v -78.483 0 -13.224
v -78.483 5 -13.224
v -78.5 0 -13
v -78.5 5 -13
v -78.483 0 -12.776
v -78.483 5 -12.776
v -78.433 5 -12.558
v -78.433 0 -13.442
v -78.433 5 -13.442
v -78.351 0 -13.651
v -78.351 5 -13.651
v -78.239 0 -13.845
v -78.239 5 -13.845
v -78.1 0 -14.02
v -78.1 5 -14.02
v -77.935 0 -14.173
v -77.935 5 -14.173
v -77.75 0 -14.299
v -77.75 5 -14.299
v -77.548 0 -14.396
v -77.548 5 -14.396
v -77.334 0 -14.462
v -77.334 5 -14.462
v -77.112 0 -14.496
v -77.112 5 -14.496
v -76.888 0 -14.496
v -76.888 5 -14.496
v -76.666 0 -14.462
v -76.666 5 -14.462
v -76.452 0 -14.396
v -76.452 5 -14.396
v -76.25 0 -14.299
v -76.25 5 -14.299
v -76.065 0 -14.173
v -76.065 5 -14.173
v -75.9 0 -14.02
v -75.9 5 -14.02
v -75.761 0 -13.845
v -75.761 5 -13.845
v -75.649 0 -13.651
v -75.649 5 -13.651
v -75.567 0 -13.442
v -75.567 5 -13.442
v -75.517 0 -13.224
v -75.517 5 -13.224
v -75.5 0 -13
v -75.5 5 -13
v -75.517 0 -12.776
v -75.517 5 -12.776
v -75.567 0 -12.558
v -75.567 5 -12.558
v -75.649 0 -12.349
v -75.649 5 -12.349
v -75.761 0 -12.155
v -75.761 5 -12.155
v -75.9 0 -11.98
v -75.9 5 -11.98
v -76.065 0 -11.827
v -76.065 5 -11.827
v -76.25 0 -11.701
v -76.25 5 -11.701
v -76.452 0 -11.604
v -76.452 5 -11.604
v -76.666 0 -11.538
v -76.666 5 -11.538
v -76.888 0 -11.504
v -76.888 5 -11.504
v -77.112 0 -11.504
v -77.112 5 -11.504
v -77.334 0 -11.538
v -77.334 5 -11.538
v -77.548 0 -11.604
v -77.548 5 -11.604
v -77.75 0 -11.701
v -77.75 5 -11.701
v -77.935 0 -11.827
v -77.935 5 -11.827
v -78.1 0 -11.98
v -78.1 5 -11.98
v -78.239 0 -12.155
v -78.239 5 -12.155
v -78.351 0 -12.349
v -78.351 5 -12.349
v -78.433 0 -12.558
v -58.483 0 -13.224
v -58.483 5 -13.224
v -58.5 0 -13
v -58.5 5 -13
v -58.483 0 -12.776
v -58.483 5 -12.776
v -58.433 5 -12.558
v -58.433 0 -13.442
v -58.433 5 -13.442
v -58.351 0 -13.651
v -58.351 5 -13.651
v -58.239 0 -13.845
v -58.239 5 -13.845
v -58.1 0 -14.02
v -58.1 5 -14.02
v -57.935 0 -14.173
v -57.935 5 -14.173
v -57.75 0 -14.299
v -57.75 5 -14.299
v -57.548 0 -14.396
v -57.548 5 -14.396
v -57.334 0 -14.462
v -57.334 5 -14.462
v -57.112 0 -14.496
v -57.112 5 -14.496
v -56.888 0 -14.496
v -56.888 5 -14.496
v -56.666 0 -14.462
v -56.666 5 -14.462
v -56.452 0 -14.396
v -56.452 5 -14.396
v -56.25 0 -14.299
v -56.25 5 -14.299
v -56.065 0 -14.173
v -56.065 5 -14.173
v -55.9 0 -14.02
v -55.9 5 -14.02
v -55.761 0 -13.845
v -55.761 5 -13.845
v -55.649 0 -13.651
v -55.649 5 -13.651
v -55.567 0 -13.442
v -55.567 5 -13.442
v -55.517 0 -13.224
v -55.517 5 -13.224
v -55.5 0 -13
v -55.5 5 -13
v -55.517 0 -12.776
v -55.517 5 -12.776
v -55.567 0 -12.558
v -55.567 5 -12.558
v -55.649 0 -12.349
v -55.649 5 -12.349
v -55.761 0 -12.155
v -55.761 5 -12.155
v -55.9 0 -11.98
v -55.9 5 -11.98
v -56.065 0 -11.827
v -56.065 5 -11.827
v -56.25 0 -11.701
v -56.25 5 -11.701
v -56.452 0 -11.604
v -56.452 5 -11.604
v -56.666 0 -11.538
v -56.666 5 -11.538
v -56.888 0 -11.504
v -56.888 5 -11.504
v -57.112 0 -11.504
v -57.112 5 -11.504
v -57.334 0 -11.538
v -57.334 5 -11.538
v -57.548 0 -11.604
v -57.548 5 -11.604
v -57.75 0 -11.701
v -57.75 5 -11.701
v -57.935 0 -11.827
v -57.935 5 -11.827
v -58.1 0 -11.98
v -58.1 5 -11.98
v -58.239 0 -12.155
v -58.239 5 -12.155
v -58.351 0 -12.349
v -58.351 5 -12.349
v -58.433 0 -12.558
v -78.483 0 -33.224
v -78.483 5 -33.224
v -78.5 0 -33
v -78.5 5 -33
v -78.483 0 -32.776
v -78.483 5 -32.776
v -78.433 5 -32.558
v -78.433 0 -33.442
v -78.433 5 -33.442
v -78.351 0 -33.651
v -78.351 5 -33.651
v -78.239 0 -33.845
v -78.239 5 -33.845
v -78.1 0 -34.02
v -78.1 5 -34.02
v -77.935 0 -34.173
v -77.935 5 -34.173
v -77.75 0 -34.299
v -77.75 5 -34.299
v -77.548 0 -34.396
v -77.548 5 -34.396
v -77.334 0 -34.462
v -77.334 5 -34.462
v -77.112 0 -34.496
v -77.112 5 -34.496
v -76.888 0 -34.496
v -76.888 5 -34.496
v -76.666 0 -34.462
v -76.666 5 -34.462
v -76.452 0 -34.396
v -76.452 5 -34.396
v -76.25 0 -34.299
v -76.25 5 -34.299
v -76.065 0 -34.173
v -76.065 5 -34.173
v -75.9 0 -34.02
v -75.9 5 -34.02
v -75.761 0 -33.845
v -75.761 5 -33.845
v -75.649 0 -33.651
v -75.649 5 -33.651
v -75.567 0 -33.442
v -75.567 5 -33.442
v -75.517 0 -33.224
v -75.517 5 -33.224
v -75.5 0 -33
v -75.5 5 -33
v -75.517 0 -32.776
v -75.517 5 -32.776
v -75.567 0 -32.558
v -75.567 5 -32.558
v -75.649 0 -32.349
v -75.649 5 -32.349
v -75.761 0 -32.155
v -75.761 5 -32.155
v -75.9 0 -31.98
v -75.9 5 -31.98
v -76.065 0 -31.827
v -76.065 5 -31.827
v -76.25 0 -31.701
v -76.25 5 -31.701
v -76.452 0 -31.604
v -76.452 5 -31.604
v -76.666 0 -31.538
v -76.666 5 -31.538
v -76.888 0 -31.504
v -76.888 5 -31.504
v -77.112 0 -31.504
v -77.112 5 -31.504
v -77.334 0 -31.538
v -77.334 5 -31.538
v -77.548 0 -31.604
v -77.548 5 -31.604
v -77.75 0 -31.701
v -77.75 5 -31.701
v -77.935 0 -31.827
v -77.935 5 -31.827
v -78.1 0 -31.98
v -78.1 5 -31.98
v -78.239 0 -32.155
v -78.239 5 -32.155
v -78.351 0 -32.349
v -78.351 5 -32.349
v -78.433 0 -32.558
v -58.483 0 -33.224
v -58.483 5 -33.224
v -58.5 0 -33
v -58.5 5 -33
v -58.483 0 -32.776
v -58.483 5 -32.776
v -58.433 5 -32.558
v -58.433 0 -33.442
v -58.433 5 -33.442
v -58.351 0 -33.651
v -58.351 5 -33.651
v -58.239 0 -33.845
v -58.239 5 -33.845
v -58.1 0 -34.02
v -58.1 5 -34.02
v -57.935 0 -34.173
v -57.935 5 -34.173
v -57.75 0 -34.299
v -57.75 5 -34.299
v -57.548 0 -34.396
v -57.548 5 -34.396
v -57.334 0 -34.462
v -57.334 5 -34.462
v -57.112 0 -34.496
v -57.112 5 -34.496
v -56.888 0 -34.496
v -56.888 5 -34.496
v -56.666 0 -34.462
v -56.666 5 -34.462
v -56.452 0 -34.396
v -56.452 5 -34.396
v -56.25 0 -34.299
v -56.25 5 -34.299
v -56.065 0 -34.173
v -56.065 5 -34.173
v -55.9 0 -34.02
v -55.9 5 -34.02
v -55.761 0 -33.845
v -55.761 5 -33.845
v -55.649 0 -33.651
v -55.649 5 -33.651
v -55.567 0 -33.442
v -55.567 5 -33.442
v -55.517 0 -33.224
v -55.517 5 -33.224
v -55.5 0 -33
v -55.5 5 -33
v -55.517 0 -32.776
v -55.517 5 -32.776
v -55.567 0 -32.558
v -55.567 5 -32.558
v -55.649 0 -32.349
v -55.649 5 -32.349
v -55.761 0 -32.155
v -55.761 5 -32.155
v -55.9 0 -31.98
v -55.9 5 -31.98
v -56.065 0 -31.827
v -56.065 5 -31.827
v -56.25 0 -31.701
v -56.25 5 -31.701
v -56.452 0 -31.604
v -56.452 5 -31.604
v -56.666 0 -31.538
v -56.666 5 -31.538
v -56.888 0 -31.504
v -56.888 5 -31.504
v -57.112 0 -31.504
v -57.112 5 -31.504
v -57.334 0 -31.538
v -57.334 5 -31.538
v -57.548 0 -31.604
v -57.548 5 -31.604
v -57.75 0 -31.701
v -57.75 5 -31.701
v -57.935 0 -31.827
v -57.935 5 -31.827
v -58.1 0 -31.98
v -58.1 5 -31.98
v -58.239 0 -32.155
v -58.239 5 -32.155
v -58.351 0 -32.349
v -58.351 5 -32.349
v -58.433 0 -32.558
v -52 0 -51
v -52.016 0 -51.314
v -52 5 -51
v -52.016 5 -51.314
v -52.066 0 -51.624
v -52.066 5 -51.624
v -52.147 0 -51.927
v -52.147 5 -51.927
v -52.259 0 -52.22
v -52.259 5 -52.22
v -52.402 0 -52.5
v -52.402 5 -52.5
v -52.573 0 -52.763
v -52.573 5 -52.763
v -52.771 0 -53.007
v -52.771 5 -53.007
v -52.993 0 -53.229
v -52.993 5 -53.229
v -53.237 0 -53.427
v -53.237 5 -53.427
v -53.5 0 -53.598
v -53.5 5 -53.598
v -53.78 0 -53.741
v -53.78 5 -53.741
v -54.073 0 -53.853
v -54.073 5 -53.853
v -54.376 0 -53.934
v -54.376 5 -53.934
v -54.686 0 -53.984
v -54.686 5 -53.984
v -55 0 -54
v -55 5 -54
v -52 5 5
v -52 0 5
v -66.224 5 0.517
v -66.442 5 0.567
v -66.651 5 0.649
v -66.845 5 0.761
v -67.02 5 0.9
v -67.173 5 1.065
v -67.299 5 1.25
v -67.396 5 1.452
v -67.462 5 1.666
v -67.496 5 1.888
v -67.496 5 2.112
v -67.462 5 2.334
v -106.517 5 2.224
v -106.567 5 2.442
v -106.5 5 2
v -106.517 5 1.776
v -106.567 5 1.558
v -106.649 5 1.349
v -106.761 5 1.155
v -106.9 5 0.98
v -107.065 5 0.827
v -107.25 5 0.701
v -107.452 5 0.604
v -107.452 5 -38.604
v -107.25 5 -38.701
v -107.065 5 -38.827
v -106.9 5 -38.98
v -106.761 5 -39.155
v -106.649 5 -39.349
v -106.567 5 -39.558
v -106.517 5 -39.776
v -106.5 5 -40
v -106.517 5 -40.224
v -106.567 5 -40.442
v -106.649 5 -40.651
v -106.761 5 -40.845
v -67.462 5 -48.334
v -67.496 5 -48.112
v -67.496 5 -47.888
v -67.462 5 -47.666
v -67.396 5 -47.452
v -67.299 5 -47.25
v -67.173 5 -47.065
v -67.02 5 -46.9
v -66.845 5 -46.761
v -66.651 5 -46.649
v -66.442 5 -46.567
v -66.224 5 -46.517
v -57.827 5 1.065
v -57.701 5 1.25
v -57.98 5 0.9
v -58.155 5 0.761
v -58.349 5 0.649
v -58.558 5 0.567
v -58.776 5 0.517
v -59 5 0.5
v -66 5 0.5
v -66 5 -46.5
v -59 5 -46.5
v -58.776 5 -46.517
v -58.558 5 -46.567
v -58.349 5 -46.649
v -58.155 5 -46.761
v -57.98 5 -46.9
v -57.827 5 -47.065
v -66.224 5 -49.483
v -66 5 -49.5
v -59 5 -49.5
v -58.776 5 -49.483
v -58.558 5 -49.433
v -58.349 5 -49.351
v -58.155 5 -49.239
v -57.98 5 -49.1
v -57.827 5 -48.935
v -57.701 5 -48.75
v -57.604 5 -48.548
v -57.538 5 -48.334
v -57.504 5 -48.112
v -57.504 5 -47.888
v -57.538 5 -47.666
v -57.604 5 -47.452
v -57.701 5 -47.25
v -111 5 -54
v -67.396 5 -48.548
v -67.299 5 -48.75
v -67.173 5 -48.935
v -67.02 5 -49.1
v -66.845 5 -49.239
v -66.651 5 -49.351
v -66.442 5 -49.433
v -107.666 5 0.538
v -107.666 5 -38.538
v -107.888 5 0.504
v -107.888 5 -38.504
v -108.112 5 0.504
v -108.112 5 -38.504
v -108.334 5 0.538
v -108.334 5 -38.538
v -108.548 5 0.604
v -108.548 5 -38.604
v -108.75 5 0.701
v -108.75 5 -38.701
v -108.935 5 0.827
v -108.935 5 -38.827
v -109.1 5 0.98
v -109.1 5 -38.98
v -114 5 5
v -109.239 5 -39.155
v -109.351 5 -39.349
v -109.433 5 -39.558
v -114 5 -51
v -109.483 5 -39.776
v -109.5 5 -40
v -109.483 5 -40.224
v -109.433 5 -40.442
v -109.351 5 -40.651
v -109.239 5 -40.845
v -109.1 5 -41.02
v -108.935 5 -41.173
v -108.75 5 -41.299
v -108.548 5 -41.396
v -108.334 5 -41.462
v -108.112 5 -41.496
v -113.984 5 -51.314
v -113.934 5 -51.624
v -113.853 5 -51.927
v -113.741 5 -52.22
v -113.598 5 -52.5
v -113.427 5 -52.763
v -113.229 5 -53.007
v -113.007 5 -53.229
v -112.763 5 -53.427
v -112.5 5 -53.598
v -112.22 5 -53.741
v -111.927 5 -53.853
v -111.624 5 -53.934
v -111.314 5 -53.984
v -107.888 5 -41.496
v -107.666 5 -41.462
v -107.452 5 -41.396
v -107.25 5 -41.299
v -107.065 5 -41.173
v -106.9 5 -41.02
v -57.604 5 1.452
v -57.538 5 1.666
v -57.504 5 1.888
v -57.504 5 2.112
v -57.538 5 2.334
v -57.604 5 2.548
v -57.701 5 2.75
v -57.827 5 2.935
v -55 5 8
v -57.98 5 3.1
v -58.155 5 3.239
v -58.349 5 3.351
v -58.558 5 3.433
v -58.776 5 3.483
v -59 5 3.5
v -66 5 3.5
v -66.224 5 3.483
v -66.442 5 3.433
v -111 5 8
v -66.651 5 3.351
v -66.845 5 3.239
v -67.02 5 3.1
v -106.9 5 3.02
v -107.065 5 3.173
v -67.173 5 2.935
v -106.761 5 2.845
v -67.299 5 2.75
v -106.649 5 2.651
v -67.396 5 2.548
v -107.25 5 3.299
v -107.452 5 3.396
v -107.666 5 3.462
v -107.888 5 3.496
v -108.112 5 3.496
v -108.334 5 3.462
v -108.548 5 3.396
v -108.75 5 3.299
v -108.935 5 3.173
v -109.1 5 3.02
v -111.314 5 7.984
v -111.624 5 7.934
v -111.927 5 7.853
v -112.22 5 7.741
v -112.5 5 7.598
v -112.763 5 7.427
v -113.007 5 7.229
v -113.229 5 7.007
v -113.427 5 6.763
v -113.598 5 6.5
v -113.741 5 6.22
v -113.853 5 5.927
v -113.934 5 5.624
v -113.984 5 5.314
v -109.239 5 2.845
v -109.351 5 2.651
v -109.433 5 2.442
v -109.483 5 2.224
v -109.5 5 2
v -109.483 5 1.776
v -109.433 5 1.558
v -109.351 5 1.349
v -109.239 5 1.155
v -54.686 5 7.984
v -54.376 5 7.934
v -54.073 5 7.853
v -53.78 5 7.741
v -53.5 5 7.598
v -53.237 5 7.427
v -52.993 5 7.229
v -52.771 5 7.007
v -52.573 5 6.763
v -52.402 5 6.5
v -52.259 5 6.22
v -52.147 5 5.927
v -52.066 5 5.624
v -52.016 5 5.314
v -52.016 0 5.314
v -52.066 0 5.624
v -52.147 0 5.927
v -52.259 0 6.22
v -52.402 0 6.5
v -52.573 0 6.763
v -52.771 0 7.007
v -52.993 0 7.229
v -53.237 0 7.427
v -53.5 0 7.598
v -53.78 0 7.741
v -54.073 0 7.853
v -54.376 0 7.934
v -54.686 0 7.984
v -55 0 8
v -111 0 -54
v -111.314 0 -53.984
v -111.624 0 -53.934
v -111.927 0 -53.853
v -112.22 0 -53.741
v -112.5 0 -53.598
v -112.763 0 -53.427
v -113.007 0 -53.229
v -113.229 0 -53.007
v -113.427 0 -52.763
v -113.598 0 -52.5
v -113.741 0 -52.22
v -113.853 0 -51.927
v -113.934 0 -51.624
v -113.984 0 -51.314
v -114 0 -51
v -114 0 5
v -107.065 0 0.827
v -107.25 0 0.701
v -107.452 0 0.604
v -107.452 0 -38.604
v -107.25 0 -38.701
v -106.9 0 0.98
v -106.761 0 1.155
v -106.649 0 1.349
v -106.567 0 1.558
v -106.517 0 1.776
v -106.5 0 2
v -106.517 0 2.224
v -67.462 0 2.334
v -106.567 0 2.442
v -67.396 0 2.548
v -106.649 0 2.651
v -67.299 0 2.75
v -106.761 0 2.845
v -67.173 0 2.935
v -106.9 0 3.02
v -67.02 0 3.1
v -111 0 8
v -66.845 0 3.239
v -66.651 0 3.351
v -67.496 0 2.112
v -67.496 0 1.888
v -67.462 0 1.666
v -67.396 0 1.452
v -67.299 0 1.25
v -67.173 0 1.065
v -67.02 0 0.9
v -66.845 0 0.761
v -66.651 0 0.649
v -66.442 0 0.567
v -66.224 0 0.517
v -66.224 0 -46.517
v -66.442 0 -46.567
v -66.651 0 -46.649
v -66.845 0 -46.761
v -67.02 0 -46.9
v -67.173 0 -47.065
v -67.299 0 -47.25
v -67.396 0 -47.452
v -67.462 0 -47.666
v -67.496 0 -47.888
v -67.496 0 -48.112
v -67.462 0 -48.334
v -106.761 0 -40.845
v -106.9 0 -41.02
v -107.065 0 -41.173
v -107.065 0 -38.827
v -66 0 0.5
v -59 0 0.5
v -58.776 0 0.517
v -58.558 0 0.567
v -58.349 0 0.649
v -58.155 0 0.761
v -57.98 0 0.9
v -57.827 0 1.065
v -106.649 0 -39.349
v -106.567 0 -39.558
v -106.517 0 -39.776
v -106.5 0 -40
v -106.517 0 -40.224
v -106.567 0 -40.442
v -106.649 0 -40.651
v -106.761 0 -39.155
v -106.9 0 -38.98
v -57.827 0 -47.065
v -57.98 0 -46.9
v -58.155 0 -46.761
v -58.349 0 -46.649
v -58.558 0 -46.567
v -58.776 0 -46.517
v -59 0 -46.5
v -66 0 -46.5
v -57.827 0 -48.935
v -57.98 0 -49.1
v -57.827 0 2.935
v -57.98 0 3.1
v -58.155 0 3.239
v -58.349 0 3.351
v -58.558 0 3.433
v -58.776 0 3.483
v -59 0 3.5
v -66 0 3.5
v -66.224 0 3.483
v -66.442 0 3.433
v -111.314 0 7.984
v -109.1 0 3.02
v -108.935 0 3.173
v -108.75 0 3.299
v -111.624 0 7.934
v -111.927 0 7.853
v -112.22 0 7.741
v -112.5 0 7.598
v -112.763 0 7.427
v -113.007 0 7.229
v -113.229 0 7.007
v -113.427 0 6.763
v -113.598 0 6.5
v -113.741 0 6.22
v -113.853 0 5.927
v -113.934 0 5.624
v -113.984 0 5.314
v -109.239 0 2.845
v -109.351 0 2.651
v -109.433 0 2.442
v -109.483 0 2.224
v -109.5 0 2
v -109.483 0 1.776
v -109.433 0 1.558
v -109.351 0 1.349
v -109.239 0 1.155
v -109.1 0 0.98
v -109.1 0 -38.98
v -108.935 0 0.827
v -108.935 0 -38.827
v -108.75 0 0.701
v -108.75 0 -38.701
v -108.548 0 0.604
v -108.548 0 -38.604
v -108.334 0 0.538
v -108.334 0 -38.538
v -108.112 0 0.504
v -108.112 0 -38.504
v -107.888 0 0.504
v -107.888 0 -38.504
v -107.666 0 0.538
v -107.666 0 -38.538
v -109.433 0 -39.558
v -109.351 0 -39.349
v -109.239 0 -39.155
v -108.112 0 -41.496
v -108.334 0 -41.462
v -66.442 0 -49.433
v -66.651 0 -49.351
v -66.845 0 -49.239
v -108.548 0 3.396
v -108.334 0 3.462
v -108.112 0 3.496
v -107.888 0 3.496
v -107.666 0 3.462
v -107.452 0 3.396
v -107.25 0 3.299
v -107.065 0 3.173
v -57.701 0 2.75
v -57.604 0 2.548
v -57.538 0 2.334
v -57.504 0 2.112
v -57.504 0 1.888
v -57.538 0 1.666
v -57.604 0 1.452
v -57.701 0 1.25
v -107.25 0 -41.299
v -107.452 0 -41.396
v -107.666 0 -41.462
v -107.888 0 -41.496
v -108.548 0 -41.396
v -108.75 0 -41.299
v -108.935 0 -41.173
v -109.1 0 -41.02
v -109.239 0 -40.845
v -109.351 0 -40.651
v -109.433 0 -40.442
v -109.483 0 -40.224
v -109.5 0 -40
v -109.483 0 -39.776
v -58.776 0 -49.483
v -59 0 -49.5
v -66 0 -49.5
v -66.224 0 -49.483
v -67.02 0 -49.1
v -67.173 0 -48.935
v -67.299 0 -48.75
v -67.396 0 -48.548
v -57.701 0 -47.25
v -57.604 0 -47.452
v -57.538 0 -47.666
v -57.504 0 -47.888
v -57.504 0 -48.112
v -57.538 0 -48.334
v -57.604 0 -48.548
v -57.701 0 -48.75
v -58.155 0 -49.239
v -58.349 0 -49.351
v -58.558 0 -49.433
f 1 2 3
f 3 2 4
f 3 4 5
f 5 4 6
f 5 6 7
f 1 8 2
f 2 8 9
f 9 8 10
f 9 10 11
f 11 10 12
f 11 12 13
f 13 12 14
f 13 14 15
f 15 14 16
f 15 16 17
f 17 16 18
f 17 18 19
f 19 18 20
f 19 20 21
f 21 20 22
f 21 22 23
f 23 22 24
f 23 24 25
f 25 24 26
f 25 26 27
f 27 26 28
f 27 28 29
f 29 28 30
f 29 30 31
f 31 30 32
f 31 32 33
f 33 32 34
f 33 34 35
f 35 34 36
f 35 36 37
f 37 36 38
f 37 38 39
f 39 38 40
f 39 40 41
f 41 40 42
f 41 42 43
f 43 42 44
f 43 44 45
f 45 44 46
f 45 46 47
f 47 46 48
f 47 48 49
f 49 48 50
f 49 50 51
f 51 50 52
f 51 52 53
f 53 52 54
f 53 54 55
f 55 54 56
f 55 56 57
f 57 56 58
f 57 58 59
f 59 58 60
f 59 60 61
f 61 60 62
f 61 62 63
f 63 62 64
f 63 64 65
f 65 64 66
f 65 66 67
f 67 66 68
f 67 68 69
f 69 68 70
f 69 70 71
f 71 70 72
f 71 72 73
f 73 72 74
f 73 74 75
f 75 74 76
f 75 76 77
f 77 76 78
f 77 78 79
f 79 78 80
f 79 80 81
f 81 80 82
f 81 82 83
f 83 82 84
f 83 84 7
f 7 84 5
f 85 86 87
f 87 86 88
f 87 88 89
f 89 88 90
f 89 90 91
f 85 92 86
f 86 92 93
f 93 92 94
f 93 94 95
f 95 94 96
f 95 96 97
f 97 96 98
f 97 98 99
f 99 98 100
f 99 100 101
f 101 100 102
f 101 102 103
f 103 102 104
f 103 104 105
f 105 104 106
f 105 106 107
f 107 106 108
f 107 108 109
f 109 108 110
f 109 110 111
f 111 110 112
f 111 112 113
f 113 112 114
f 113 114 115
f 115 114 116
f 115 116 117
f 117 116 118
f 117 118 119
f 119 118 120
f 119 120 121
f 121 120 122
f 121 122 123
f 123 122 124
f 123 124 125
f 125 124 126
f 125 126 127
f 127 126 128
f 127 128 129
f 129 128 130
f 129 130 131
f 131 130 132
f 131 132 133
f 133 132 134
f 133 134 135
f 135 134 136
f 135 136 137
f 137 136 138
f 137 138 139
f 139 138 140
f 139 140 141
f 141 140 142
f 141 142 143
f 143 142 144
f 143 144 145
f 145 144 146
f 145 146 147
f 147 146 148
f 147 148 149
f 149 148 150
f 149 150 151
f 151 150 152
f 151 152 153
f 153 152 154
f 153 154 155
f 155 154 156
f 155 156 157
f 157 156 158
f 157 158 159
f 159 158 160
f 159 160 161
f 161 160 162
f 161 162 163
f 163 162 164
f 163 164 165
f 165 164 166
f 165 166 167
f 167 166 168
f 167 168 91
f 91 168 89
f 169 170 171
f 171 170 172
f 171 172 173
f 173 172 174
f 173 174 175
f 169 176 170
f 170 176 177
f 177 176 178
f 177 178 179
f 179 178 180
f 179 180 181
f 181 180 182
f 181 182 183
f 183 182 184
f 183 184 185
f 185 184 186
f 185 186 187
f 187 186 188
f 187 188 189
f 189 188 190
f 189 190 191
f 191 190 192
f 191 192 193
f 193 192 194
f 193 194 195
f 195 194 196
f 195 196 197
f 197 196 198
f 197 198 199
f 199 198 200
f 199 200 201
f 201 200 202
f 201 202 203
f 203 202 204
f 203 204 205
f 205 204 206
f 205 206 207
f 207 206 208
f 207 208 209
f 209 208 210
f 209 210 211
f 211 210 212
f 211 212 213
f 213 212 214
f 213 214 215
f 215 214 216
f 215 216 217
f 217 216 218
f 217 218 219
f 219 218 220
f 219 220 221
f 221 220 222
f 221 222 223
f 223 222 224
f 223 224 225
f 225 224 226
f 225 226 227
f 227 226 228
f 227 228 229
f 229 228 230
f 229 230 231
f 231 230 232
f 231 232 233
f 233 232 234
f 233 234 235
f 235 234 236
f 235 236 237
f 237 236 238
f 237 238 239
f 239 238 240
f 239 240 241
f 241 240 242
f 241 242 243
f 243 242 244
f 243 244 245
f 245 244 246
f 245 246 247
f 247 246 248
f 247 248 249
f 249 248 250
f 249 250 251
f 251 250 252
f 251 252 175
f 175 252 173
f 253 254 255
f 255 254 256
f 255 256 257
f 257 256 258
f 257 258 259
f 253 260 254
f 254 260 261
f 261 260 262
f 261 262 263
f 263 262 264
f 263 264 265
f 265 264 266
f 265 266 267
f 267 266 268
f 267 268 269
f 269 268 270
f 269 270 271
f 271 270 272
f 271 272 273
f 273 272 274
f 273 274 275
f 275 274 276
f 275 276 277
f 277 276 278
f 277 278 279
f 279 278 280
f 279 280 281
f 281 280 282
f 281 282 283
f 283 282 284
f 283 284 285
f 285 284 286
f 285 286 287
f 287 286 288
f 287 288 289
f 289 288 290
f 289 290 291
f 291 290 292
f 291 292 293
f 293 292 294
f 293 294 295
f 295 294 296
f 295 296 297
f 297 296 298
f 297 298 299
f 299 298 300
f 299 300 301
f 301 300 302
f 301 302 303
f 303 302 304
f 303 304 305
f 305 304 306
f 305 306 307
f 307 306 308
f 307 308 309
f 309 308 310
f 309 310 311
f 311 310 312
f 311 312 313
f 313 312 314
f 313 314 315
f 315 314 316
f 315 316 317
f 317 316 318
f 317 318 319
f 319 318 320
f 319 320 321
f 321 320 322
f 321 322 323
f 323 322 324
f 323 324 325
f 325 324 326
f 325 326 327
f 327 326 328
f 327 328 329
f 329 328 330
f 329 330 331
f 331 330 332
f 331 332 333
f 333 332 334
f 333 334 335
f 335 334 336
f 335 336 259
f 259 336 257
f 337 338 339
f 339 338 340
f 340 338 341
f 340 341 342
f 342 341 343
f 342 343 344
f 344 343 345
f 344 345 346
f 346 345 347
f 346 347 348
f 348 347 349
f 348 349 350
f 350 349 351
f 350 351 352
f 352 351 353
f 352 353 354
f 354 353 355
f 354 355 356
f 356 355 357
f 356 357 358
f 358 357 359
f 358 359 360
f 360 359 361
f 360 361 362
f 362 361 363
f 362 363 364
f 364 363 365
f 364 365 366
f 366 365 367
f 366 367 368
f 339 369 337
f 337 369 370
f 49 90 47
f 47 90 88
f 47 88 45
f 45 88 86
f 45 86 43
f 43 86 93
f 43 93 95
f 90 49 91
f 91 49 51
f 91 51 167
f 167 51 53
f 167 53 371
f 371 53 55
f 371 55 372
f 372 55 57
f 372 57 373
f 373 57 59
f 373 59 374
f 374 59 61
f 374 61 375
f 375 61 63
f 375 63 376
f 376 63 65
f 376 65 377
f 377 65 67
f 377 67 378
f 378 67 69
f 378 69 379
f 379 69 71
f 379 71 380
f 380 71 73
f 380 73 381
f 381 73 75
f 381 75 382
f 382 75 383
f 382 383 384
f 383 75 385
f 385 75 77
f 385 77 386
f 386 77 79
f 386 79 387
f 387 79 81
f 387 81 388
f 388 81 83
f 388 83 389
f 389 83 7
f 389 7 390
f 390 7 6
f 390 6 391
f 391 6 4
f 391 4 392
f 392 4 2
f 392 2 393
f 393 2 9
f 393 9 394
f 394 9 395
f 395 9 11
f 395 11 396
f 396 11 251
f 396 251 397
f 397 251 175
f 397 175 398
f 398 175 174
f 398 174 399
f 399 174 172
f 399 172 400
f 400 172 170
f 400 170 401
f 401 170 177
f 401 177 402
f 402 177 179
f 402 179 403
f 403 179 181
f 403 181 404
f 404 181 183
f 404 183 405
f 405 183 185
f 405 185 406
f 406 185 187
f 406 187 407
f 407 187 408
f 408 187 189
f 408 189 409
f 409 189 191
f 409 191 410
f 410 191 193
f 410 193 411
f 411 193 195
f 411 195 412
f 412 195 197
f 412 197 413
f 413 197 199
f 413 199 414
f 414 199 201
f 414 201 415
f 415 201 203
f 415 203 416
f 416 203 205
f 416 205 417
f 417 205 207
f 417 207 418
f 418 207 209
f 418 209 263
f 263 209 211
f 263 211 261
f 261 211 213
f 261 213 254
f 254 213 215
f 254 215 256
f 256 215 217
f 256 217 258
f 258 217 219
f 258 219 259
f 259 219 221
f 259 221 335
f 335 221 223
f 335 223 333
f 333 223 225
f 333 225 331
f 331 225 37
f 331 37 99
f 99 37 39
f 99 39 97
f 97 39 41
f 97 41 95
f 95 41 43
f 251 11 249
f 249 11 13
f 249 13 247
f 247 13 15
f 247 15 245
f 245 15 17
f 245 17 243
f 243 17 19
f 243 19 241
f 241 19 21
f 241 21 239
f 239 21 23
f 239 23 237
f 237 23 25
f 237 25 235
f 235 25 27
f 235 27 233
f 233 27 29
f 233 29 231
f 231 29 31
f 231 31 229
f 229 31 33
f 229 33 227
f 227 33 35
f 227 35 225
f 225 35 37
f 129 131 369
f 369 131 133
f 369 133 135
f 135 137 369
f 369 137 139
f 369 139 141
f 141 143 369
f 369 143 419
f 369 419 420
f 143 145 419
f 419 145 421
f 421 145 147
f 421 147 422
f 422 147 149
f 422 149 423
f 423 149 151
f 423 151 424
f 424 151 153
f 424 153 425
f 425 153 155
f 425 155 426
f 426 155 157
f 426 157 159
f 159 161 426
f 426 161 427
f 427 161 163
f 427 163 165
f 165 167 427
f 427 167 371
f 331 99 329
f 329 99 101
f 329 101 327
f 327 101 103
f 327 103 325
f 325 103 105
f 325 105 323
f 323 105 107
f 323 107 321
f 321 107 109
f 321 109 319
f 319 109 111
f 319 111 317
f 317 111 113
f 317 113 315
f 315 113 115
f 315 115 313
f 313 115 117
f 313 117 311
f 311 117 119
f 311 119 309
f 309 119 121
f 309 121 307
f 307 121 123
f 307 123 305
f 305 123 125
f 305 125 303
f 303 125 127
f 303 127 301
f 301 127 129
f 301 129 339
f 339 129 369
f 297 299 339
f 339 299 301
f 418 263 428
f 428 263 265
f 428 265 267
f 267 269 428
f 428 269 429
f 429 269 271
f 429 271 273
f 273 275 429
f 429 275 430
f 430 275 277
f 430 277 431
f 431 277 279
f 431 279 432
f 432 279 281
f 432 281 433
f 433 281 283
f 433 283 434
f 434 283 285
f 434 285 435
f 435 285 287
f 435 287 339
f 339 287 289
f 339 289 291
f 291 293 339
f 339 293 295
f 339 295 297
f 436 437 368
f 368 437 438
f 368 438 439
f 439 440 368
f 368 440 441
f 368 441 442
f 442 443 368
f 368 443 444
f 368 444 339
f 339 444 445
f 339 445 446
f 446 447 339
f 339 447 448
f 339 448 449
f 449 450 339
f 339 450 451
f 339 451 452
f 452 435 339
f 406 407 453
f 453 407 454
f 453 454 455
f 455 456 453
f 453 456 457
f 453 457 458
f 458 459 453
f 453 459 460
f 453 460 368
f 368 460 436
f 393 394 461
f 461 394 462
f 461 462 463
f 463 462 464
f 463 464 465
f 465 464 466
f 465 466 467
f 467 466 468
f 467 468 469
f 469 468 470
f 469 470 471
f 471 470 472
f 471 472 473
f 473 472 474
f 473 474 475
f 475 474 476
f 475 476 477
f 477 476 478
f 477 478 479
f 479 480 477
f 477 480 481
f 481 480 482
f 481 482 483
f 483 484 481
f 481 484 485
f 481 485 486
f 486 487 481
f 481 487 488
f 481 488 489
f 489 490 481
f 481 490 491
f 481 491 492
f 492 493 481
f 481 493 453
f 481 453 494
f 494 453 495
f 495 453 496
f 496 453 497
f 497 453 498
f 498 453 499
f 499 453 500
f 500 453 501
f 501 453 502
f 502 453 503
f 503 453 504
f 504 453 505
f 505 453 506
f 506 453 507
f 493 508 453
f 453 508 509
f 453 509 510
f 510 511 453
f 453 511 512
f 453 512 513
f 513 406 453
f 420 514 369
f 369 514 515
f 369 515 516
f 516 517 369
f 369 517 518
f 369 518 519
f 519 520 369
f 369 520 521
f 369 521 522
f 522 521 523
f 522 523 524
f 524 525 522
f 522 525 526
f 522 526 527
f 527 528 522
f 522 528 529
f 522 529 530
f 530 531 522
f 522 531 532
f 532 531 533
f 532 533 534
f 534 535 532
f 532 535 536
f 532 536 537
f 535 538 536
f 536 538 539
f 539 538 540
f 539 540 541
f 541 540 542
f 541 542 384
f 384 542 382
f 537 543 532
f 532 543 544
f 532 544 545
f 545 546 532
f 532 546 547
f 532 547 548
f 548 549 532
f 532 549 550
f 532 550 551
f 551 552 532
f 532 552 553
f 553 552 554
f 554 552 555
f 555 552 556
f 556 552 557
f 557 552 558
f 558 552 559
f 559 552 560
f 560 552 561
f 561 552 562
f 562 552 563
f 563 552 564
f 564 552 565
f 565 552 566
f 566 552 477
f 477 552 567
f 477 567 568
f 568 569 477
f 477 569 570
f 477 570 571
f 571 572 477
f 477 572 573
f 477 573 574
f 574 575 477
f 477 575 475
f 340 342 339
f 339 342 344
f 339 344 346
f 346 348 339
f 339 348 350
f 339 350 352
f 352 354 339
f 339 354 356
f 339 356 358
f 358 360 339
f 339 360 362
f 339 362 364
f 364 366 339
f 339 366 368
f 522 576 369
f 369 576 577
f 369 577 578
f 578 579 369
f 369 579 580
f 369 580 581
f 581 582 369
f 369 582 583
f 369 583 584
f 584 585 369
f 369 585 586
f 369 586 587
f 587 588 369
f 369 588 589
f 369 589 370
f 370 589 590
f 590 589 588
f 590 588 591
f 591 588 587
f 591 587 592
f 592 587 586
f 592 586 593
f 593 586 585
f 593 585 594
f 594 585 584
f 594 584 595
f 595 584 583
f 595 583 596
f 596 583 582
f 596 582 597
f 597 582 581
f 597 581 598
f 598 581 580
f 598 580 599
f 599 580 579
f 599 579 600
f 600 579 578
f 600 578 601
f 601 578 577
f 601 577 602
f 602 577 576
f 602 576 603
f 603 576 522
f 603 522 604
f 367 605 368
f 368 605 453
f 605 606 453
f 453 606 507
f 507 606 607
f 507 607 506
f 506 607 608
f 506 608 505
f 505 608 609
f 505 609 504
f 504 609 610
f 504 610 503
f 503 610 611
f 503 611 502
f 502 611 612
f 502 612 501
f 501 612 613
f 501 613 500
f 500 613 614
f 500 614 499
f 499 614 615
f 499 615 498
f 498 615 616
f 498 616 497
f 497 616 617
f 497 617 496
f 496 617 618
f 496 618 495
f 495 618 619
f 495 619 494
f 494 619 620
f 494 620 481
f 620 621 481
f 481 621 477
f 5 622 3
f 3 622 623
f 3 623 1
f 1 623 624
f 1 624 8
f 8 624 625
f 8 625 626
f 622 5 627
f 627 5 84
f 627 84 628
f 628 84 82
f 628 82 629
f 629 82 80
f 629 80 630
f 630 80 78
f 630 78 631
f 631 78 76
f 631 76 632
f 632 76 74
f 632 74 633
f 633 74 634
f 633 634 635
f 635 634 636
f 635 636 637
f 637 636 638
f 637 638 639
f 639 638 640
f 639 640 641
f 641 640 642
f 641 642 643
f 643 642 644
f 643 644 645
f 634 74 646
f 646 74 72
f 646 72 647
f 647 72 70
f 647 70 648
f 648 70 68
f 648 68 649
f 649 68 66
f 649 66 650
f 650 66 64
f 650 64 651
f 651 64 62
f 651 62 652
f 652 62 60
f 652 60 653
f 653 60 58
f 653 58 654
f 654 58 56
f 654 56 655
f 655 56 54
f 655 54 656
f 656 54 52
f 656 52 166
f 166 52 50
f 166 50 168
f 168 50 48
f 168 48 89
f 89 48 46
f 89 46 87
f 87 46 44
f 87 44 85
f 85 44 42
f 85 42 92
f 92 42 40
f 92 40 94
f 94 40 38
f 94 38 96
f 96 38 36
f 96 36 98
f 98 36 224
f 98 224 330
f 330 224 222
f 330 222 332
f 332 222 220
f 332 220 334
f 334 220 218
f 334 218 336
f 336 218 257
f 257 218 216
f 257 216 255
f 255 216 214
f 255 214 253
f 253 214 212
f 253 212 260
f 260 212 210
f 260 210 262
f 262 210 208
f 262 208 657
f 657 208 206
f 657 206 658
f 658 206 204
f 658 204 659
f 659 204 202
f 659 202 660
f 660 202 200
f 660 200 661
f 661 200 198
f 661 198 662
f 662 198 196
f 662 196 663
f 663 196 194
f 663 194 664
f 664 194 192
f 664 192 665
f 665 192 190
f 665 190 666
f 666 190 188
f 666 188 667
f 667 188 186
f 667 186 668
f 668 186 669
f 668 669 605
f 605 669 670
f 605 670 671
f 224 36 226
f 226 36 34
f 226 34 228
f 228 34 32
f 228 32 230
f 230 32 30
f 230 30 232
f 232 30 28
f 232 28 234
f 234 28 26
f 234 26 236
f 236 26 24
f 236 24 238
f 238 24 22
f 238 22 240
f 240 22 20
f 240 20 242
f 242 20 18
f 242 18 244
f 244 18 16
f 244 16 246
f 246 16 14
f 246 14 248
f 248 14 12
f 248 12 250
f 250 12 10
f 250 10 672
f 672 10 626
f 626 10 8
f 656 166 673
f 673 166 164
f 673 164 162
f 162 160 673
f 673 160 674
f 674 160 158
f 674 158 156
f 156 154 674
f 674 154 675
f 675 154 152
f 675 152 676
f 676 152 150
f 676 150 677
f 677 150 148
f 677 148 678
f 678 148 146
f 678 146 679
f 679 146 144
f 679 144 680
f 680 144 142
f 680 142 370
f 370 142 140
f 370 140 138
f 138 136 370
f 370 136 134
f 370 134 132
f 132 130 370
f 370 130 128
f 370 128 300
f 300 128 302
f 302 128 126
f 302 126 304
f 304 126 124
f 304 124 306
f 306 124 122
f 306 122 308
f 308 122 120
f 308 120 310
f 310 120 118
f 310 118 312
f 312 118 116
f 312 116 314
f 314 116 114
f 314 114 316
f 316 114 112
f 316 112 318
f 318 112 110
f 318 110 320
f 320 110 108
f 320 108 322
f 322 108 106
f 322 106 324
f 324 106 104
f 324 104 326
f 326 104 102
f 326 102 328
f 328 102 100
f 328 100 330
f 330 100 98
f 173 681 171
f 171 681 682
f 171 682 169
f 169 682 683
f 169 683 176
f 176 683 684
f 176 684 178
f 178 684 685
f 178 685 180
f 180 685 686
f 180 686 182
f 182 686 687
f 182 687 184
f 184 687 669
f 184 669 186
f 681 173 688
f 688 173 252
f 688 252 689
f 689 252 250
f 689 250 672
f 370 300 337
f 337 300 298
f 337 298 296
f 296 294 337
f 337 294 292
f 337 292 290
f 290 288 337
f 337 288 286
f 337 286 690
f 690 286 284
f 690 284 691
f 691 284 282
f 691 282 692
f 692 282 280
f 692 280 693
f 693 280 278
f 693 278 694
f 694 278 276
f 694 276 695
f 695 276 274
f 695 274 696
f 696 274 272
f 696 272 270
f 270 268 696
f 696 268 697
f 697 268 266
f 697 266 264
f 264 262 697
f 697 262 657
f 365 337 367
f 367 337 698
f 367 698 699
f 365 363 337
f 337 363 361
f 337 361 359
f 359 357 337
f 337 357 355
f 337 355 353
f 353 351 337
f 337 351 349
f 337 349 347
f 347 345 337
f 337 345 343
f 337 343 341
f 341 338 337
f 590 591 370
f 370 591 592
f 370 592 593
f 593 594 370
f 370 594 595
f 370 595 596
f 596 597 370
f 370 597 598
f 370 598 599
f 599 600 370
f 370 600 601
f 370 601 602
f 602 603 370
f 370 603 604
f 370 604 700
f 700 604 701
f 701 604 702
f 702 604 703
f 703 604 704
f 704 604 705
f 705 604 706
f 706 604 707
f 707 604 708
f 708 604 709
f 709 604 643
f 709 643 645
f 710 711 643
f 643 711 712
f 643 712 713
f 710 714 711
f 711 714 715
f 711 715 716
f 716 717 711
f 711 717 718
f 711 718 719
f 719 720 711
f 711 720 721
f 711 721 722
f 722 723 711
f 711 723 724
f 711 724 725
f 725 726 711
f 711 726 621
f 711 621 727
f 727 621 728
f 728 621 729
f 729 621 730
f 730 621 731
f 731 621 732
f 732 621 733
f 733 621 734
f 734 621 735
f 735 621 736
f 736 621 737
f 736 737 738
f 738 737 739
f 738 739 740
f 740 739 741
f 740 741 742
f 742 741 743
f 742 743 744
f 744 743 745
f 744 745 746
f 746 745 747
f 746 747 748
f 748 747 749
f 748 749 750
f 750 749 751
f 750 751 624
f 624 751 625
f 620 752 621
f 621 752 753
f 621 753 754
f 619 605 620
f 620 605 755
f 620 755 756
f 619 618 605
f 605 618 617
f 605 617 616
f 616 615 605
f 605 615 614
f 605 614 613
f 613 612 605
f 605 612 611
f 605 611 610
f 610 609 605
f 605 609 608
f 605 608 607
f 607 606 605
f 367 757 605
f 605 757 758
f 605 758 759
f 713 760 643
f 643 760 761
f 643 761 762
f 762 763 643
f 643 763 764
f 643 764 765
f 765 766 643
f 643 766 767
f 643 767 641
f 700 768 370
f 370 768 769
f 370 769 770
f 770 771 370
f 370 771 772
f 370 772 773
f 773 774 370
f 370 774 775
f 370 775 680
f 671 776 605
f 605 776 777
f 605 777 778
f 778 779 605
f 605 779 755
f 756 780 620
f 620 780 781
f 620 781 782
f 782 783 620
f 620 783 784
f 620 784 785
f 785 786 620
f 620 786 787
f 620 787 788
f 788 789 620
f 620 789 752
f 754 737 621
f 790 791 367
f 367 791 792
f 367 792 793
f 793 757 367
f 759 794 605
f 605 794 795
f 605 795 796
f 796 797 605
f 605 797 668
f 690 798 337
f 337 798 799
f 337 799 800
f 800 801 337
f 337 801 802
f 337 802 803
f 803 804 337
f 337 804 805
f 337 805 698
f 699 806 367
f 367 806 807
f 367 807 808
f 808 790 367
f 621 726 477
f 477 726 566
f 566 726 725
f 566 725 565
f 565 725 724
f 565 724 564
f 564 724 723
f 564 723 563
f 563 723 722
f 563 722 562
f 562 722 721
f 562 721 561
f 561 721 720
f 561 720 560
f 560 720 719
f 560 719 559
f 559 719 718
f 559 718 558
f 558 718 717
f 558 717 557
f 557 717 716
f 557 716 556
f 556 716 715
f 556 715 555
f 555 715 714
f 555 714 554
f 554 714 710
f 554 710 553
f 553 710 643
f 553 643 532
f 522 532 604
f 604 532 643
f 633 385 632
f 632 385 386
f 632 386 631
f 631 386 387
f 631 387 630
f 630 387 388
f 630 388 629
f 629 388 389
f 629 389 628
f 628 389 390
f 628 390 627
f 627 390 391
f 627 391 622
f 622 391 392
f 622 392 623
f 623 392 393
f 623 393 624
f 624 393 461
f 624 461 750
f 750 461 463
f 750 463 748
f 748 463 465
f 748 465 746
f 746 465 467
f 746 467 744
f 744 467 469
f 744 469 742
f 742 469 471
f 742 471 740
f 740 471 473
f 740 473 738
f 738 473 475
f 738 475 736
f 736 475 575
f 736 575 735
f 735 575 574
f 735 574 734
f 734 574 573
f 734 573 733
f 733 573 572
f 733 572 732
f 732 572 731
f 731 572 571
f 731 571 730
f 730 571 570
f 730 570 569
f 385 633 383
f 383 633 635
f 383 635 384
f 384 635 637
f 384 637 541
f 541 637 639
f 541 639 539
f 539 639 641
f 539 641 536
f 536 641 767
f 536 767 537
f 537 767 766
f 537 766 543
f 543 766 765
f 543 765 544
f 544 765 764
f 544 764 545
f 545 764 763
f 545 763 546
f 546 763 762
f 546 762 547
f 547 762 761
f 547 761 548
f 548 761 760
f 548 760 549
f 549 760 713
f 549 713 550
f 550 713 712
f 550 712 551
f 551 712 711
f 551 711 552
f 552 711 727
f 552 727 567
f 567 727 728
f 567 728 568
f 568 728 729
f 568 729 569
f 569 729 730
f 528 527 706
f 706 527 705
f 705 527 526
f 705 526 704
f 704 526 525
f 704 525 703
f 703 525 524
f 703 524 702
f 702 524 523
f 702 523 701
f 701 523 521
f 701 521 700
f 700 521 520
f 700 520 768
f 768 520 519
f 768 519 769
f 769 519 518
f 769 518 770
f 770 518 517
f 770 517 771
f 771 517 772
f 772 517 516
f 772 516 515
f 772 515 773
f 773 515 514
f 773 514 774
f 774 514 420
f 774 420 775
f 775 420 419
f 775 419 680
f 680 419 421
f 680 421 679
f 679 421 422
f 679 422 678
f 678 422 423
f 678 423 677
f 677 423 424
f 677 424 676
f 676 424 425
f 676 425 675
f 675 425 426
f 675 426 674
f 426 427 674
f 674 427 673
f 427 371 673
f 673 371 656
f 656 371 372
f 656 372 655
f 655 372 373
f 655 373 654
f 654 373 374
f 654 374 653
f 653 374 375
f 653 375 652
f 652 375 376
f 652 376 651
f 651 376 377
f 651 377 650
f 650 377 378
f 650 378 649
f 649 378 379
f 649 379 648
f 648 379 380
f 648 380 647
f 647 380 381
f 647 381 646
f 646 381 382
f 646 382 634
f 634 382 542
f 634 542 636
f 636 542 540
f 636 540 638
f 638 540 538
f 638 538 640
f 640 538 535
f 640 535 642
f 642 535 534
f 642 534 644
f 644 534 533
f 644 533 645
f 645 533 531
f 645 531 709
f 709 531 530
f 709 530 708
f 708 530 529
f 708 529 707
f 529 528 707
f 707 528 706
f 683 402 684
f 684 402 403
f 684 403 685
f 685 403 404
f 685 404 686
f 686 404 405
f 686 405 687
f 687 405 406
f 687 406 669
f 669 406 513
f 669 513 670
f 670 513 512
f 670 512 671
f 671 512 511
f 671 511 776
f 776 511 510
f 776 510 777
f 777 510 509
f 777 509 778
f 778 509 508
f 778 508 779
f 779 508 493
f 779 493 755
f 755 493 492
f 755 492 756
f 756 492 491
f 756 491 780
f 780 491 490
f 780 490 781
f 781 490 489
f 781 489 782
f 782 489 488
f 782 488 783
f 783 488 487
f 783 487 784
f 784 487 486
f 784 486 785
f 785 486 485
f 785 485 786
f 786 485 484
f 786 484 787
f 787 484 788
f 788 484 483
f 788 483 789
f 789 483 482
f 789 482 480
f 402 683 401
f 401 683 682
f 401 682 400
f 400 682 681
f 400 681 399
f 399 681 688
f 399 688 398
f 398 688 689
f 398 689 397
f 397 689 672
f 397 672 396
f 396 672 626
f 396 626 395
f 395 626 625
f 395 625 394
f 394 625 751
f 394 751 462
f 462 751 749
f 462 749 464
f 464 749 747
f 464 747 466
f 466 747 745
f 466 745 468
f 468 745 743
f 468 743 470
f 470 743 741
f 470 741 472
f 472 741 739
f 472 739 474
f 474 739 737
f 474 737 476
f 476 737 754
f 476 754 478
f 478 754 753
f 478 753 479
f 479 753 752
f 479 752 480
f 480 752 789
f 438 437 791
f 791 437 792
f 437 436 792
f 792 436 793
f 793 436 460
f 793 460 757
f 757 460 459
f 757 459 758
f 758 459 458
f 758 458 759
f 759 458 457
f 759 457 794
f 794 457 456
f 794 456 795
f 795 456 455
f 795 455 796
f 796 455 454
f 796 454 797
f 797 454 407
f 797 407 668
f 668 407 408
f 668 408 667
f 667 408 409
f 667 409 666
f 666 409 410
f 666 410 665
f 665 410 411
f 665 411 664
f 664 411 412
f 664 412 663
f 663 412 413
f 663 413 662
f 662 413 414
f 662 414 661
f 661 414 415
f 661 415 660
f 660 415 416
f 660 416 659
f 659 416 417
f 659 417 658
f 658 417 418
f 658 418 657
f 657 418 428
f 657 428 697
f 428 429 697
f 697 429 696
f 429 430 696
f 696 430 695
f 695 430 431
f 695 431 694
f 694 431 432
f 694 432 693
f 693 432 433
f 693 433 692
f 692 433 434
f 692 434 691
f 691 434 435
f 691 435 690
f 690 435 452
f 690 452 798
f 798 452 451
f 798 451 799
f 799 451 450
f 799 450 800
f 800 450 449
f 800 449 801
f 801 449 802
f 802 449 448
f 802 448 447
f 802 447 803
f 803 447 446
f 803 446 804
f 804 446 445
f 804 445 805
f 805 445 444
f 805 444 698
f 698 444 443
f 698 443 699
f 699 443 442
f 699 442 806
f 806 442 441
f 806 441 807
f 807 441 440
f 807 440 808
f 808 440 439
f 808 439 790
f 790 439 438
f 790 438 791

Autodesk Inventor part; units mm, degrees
ref_plane "YZ Plane" through (0, 0, 0) normal (1, 0, 0) x (0, 1, 0)
ref_plane "XZ Plane" through (0, 0, 0) normal (0, 1, 0) x (-1, 0, 0)
ref_plane "XY Plane" through (0, 0, 0) normal (0, 0, 1) x (1, 0, 0)
sketch "Sketch1" plane through (0, 0, 0) normal (0, 1, 0) x (-1, 0, 0)
  line L0 (0, 0) -> (46, 0) construction
  line L1 (46, 0) -> (46, -46) construction
  line L2 (46, -46) -> (0, -46) construction
  line L3 (0, -46) -> (0, 0) construction
  circle A0 centre (46, -46) radius 1.5
  circle A1 centre (46, 0) radius 1.5
  circle A2 centre (0, 0) radius 1.5
  circle A3 centre (0, -46) radius 1.5
  line L4 (23, 0) -> (23, -46) construction
  line L5 (-8, 8) -> (54, 8)
  line L6 (54, 8) -> (54, -54)
  line L7 (54, -54) -> (-8, -54)
  line L8 (-8, -54) -> (-8, 8)
  line L9 (-8, 8) -> (54, -54) construction
  line L10 (54, 8) -> (-8, -54) construction
  point P0 (23, -23)
  dimension "d0" = 46
  dimension "d1" = 46
  dimension "d2" = 3
  dimension "d3" = 3
  dimension "d4" = 3
  dimension "d5" = 3
  dimension "d6" = 8
  dimension "d7" = 8
extrude "Extrusion1" add sketch "Sketch1" along normal blind 5
sketch "Sketch2" plane through (0, 5, 0) normal (0, 1, 0) x (1, 0, 0)
  line L0 (-54, -8) -> (8, -8) projected
  line L1 (-54, -8) -> (-114, -8)
  line L2 (-114, -8) -> (-114, 54)
  line L3 (-114, 54) -> (-54, 54)
  line L4 (-54, 54) -> (-54, -8)
  line L5 (8, 54) -> (-54, 54) projected
  point P0 (0, 0)
  dimension "d10" = 60
extrude "Extrusion2" add sketch "Sketch2" against normal blind 5
sketch "Sketch3" plane through (0, 5, 0) normal (0, 1, 0) x (1, 0, 0)
  circle A0 centre (0, 46) radius 1.5 projected
  circle A1 centre (-46, 46) radius 1.5 projected
  line L0 (0, 46) -> (-46, 46) construction
  line L1 (-23, 46) -> (-23, 0) construction
  line L2 (-1.5, 44.5) -> (-44.5, 44.5)
  line L3 (-44.5, 44.5) -> (-44.5, 1.5)
  line L4 (-44.5, 1.5) -> (-1.5, 1.5)
  line L5 (-1.5, 1.5) -> (-1.5, 44.5)
  line L6 (-1.5, 44.5) -> (-44.5, 1.5) construction
  line L7 (-44.5, 44.5) -> (-1.5, 1.5) construction
  line L8 (-114, -8) -> (8, -8) projected
  point P0 (0, 0)
  point P1 (-23, 23)
  dimension "d14" = 43
  dimension "d15" = 43
extrude "Extrusion3" cut sketch "Sketch3" against normal blind 5 contours L5 L4 L3 L2
fillet "Fillet1" radius 1 4 edges at (-44.5, 2.5, -44.5) (-44.5, 2.5, -1.5) (-1.5, 2.5, -1.5) (-1.5, 2.5, -44.5)
sketch "Sketch4" plane through (0, 5, 0) normal (0, 1, 0) x (1, 0, 0)
  circle A0 centre (-108, 40) radius 1.5
  circle A1 centre (-108, -2) radius 1.5
  line L0 (-114, -8) -> (8, -8) projected
  line L1 (-114, 54) -> (-114, -8) projected
  line L2 (8, 54) -> (-114, 54) projected
  circle A2 centre (-59, -2) radius 1.5
  circle A3 centre (-59, 48) radius 1.5
  circle A4 centre (-66, -2) radius 1.5
  circle A5 centre (-66, 48) radius 1.5
  line L3 (-59, -2) -> (-59, 48) construction
  line L4 (-66, 46.5) -> (-59, 46.5)
  line L5 (-66, 49.5) -> (-59, 49.5)
  line L6 (-66, -3.5) -> (-59, -3.5)
  line L7 (-66, -0.5) -> (-59, -0.5)
  line L8 (-66, -2) -> (-66, 48) construction
  line L9 (-59, -2) -> (-66, -2) construction
  line L10 (-59, 48) -> (-66, 48) construction
  point P0 (0, 0)
  dimension "d19" = 6
  dimension "d20" = 3
  dimension "d21" = 6
  dimension "d23" = 3
  dimension "d24" = 6
  dimension "d25" = 14
  dimension "d26" = 3
  dimension "d27" = 3
  dimension "d28" = 50
  dimension "d29" = 6
  dimension "d32" = 7
  dimension "d33" = 3
  dimension "d34" = 3
  dimension "d35" = 7
  dimension "d36" = 42
extrude "Extrusion4" cut sketch "Sketch4" against normal blind 5
fillet "Fillet2" radius 3 4 edges at (8, 2.5, -54) (8, 2.5, 8) (-114, 2.5, 8) (-114, 2.5, -54)
sketch "Sketch5" plane through (0, 5, 0) normal (0, 1, 0) x (1, 0, 0)
  line L0 (-52, 54) -> (8, 54)
  line L1 (8, 54) -> (8, -8)
  line L2 (8, -8) -> (-52, -8)
  line L3 (-52, -8) -> (-52, 54)
  point P0 (0, 0)
extrude "Extrusion5" cut sketch "Sketch5" against normal blind 10
fillet "Fillet3" radius 3 2 edges at (-52, 2.5, 8) (-52, 2.5, -54)
sketch "Sketch6" plane through (0, 5, 0) normal (0, 1, 0) x (1, 0, 0)
  line L0 (-52, 51) -> (-52, -5) projected
  line L1 (-52, 23) -> (-67, 23) construction
  line L2 (-77, 33) -> (-57, 33) construction
  line L3 (-57, 33) -> (-57, 13) construction
  line L4 (-57, 13) -> (-77, 13) construction
  line L5 (-77, 13) -> (-77, 33) construction
  line L6 (-77, 33) -> (-57, 13) construction
  line L7 (-57, 33) -> (-77, 13) construction
  circle A0 centre (-57, 33) radius 1.5
  circle A1 centre (-57, 13) radius 1.5
  circle A2 centre (-77, 13) radius 1.5
  circle A3 centre (-77, 33) radius 1.5
  point P0 (0, 0)
  dimension "d44" = 20
  dimension "d45" = 20
  dimension "d46" = 5
  dimension "d47" = 3
  dimension "d48" = 3
  dimension "d49" = 3
  dimension "d50" = 3
extrude "Extrusion6" cut sketch "Sketch6" against normal blind 10
properties part number "Electronics base"
